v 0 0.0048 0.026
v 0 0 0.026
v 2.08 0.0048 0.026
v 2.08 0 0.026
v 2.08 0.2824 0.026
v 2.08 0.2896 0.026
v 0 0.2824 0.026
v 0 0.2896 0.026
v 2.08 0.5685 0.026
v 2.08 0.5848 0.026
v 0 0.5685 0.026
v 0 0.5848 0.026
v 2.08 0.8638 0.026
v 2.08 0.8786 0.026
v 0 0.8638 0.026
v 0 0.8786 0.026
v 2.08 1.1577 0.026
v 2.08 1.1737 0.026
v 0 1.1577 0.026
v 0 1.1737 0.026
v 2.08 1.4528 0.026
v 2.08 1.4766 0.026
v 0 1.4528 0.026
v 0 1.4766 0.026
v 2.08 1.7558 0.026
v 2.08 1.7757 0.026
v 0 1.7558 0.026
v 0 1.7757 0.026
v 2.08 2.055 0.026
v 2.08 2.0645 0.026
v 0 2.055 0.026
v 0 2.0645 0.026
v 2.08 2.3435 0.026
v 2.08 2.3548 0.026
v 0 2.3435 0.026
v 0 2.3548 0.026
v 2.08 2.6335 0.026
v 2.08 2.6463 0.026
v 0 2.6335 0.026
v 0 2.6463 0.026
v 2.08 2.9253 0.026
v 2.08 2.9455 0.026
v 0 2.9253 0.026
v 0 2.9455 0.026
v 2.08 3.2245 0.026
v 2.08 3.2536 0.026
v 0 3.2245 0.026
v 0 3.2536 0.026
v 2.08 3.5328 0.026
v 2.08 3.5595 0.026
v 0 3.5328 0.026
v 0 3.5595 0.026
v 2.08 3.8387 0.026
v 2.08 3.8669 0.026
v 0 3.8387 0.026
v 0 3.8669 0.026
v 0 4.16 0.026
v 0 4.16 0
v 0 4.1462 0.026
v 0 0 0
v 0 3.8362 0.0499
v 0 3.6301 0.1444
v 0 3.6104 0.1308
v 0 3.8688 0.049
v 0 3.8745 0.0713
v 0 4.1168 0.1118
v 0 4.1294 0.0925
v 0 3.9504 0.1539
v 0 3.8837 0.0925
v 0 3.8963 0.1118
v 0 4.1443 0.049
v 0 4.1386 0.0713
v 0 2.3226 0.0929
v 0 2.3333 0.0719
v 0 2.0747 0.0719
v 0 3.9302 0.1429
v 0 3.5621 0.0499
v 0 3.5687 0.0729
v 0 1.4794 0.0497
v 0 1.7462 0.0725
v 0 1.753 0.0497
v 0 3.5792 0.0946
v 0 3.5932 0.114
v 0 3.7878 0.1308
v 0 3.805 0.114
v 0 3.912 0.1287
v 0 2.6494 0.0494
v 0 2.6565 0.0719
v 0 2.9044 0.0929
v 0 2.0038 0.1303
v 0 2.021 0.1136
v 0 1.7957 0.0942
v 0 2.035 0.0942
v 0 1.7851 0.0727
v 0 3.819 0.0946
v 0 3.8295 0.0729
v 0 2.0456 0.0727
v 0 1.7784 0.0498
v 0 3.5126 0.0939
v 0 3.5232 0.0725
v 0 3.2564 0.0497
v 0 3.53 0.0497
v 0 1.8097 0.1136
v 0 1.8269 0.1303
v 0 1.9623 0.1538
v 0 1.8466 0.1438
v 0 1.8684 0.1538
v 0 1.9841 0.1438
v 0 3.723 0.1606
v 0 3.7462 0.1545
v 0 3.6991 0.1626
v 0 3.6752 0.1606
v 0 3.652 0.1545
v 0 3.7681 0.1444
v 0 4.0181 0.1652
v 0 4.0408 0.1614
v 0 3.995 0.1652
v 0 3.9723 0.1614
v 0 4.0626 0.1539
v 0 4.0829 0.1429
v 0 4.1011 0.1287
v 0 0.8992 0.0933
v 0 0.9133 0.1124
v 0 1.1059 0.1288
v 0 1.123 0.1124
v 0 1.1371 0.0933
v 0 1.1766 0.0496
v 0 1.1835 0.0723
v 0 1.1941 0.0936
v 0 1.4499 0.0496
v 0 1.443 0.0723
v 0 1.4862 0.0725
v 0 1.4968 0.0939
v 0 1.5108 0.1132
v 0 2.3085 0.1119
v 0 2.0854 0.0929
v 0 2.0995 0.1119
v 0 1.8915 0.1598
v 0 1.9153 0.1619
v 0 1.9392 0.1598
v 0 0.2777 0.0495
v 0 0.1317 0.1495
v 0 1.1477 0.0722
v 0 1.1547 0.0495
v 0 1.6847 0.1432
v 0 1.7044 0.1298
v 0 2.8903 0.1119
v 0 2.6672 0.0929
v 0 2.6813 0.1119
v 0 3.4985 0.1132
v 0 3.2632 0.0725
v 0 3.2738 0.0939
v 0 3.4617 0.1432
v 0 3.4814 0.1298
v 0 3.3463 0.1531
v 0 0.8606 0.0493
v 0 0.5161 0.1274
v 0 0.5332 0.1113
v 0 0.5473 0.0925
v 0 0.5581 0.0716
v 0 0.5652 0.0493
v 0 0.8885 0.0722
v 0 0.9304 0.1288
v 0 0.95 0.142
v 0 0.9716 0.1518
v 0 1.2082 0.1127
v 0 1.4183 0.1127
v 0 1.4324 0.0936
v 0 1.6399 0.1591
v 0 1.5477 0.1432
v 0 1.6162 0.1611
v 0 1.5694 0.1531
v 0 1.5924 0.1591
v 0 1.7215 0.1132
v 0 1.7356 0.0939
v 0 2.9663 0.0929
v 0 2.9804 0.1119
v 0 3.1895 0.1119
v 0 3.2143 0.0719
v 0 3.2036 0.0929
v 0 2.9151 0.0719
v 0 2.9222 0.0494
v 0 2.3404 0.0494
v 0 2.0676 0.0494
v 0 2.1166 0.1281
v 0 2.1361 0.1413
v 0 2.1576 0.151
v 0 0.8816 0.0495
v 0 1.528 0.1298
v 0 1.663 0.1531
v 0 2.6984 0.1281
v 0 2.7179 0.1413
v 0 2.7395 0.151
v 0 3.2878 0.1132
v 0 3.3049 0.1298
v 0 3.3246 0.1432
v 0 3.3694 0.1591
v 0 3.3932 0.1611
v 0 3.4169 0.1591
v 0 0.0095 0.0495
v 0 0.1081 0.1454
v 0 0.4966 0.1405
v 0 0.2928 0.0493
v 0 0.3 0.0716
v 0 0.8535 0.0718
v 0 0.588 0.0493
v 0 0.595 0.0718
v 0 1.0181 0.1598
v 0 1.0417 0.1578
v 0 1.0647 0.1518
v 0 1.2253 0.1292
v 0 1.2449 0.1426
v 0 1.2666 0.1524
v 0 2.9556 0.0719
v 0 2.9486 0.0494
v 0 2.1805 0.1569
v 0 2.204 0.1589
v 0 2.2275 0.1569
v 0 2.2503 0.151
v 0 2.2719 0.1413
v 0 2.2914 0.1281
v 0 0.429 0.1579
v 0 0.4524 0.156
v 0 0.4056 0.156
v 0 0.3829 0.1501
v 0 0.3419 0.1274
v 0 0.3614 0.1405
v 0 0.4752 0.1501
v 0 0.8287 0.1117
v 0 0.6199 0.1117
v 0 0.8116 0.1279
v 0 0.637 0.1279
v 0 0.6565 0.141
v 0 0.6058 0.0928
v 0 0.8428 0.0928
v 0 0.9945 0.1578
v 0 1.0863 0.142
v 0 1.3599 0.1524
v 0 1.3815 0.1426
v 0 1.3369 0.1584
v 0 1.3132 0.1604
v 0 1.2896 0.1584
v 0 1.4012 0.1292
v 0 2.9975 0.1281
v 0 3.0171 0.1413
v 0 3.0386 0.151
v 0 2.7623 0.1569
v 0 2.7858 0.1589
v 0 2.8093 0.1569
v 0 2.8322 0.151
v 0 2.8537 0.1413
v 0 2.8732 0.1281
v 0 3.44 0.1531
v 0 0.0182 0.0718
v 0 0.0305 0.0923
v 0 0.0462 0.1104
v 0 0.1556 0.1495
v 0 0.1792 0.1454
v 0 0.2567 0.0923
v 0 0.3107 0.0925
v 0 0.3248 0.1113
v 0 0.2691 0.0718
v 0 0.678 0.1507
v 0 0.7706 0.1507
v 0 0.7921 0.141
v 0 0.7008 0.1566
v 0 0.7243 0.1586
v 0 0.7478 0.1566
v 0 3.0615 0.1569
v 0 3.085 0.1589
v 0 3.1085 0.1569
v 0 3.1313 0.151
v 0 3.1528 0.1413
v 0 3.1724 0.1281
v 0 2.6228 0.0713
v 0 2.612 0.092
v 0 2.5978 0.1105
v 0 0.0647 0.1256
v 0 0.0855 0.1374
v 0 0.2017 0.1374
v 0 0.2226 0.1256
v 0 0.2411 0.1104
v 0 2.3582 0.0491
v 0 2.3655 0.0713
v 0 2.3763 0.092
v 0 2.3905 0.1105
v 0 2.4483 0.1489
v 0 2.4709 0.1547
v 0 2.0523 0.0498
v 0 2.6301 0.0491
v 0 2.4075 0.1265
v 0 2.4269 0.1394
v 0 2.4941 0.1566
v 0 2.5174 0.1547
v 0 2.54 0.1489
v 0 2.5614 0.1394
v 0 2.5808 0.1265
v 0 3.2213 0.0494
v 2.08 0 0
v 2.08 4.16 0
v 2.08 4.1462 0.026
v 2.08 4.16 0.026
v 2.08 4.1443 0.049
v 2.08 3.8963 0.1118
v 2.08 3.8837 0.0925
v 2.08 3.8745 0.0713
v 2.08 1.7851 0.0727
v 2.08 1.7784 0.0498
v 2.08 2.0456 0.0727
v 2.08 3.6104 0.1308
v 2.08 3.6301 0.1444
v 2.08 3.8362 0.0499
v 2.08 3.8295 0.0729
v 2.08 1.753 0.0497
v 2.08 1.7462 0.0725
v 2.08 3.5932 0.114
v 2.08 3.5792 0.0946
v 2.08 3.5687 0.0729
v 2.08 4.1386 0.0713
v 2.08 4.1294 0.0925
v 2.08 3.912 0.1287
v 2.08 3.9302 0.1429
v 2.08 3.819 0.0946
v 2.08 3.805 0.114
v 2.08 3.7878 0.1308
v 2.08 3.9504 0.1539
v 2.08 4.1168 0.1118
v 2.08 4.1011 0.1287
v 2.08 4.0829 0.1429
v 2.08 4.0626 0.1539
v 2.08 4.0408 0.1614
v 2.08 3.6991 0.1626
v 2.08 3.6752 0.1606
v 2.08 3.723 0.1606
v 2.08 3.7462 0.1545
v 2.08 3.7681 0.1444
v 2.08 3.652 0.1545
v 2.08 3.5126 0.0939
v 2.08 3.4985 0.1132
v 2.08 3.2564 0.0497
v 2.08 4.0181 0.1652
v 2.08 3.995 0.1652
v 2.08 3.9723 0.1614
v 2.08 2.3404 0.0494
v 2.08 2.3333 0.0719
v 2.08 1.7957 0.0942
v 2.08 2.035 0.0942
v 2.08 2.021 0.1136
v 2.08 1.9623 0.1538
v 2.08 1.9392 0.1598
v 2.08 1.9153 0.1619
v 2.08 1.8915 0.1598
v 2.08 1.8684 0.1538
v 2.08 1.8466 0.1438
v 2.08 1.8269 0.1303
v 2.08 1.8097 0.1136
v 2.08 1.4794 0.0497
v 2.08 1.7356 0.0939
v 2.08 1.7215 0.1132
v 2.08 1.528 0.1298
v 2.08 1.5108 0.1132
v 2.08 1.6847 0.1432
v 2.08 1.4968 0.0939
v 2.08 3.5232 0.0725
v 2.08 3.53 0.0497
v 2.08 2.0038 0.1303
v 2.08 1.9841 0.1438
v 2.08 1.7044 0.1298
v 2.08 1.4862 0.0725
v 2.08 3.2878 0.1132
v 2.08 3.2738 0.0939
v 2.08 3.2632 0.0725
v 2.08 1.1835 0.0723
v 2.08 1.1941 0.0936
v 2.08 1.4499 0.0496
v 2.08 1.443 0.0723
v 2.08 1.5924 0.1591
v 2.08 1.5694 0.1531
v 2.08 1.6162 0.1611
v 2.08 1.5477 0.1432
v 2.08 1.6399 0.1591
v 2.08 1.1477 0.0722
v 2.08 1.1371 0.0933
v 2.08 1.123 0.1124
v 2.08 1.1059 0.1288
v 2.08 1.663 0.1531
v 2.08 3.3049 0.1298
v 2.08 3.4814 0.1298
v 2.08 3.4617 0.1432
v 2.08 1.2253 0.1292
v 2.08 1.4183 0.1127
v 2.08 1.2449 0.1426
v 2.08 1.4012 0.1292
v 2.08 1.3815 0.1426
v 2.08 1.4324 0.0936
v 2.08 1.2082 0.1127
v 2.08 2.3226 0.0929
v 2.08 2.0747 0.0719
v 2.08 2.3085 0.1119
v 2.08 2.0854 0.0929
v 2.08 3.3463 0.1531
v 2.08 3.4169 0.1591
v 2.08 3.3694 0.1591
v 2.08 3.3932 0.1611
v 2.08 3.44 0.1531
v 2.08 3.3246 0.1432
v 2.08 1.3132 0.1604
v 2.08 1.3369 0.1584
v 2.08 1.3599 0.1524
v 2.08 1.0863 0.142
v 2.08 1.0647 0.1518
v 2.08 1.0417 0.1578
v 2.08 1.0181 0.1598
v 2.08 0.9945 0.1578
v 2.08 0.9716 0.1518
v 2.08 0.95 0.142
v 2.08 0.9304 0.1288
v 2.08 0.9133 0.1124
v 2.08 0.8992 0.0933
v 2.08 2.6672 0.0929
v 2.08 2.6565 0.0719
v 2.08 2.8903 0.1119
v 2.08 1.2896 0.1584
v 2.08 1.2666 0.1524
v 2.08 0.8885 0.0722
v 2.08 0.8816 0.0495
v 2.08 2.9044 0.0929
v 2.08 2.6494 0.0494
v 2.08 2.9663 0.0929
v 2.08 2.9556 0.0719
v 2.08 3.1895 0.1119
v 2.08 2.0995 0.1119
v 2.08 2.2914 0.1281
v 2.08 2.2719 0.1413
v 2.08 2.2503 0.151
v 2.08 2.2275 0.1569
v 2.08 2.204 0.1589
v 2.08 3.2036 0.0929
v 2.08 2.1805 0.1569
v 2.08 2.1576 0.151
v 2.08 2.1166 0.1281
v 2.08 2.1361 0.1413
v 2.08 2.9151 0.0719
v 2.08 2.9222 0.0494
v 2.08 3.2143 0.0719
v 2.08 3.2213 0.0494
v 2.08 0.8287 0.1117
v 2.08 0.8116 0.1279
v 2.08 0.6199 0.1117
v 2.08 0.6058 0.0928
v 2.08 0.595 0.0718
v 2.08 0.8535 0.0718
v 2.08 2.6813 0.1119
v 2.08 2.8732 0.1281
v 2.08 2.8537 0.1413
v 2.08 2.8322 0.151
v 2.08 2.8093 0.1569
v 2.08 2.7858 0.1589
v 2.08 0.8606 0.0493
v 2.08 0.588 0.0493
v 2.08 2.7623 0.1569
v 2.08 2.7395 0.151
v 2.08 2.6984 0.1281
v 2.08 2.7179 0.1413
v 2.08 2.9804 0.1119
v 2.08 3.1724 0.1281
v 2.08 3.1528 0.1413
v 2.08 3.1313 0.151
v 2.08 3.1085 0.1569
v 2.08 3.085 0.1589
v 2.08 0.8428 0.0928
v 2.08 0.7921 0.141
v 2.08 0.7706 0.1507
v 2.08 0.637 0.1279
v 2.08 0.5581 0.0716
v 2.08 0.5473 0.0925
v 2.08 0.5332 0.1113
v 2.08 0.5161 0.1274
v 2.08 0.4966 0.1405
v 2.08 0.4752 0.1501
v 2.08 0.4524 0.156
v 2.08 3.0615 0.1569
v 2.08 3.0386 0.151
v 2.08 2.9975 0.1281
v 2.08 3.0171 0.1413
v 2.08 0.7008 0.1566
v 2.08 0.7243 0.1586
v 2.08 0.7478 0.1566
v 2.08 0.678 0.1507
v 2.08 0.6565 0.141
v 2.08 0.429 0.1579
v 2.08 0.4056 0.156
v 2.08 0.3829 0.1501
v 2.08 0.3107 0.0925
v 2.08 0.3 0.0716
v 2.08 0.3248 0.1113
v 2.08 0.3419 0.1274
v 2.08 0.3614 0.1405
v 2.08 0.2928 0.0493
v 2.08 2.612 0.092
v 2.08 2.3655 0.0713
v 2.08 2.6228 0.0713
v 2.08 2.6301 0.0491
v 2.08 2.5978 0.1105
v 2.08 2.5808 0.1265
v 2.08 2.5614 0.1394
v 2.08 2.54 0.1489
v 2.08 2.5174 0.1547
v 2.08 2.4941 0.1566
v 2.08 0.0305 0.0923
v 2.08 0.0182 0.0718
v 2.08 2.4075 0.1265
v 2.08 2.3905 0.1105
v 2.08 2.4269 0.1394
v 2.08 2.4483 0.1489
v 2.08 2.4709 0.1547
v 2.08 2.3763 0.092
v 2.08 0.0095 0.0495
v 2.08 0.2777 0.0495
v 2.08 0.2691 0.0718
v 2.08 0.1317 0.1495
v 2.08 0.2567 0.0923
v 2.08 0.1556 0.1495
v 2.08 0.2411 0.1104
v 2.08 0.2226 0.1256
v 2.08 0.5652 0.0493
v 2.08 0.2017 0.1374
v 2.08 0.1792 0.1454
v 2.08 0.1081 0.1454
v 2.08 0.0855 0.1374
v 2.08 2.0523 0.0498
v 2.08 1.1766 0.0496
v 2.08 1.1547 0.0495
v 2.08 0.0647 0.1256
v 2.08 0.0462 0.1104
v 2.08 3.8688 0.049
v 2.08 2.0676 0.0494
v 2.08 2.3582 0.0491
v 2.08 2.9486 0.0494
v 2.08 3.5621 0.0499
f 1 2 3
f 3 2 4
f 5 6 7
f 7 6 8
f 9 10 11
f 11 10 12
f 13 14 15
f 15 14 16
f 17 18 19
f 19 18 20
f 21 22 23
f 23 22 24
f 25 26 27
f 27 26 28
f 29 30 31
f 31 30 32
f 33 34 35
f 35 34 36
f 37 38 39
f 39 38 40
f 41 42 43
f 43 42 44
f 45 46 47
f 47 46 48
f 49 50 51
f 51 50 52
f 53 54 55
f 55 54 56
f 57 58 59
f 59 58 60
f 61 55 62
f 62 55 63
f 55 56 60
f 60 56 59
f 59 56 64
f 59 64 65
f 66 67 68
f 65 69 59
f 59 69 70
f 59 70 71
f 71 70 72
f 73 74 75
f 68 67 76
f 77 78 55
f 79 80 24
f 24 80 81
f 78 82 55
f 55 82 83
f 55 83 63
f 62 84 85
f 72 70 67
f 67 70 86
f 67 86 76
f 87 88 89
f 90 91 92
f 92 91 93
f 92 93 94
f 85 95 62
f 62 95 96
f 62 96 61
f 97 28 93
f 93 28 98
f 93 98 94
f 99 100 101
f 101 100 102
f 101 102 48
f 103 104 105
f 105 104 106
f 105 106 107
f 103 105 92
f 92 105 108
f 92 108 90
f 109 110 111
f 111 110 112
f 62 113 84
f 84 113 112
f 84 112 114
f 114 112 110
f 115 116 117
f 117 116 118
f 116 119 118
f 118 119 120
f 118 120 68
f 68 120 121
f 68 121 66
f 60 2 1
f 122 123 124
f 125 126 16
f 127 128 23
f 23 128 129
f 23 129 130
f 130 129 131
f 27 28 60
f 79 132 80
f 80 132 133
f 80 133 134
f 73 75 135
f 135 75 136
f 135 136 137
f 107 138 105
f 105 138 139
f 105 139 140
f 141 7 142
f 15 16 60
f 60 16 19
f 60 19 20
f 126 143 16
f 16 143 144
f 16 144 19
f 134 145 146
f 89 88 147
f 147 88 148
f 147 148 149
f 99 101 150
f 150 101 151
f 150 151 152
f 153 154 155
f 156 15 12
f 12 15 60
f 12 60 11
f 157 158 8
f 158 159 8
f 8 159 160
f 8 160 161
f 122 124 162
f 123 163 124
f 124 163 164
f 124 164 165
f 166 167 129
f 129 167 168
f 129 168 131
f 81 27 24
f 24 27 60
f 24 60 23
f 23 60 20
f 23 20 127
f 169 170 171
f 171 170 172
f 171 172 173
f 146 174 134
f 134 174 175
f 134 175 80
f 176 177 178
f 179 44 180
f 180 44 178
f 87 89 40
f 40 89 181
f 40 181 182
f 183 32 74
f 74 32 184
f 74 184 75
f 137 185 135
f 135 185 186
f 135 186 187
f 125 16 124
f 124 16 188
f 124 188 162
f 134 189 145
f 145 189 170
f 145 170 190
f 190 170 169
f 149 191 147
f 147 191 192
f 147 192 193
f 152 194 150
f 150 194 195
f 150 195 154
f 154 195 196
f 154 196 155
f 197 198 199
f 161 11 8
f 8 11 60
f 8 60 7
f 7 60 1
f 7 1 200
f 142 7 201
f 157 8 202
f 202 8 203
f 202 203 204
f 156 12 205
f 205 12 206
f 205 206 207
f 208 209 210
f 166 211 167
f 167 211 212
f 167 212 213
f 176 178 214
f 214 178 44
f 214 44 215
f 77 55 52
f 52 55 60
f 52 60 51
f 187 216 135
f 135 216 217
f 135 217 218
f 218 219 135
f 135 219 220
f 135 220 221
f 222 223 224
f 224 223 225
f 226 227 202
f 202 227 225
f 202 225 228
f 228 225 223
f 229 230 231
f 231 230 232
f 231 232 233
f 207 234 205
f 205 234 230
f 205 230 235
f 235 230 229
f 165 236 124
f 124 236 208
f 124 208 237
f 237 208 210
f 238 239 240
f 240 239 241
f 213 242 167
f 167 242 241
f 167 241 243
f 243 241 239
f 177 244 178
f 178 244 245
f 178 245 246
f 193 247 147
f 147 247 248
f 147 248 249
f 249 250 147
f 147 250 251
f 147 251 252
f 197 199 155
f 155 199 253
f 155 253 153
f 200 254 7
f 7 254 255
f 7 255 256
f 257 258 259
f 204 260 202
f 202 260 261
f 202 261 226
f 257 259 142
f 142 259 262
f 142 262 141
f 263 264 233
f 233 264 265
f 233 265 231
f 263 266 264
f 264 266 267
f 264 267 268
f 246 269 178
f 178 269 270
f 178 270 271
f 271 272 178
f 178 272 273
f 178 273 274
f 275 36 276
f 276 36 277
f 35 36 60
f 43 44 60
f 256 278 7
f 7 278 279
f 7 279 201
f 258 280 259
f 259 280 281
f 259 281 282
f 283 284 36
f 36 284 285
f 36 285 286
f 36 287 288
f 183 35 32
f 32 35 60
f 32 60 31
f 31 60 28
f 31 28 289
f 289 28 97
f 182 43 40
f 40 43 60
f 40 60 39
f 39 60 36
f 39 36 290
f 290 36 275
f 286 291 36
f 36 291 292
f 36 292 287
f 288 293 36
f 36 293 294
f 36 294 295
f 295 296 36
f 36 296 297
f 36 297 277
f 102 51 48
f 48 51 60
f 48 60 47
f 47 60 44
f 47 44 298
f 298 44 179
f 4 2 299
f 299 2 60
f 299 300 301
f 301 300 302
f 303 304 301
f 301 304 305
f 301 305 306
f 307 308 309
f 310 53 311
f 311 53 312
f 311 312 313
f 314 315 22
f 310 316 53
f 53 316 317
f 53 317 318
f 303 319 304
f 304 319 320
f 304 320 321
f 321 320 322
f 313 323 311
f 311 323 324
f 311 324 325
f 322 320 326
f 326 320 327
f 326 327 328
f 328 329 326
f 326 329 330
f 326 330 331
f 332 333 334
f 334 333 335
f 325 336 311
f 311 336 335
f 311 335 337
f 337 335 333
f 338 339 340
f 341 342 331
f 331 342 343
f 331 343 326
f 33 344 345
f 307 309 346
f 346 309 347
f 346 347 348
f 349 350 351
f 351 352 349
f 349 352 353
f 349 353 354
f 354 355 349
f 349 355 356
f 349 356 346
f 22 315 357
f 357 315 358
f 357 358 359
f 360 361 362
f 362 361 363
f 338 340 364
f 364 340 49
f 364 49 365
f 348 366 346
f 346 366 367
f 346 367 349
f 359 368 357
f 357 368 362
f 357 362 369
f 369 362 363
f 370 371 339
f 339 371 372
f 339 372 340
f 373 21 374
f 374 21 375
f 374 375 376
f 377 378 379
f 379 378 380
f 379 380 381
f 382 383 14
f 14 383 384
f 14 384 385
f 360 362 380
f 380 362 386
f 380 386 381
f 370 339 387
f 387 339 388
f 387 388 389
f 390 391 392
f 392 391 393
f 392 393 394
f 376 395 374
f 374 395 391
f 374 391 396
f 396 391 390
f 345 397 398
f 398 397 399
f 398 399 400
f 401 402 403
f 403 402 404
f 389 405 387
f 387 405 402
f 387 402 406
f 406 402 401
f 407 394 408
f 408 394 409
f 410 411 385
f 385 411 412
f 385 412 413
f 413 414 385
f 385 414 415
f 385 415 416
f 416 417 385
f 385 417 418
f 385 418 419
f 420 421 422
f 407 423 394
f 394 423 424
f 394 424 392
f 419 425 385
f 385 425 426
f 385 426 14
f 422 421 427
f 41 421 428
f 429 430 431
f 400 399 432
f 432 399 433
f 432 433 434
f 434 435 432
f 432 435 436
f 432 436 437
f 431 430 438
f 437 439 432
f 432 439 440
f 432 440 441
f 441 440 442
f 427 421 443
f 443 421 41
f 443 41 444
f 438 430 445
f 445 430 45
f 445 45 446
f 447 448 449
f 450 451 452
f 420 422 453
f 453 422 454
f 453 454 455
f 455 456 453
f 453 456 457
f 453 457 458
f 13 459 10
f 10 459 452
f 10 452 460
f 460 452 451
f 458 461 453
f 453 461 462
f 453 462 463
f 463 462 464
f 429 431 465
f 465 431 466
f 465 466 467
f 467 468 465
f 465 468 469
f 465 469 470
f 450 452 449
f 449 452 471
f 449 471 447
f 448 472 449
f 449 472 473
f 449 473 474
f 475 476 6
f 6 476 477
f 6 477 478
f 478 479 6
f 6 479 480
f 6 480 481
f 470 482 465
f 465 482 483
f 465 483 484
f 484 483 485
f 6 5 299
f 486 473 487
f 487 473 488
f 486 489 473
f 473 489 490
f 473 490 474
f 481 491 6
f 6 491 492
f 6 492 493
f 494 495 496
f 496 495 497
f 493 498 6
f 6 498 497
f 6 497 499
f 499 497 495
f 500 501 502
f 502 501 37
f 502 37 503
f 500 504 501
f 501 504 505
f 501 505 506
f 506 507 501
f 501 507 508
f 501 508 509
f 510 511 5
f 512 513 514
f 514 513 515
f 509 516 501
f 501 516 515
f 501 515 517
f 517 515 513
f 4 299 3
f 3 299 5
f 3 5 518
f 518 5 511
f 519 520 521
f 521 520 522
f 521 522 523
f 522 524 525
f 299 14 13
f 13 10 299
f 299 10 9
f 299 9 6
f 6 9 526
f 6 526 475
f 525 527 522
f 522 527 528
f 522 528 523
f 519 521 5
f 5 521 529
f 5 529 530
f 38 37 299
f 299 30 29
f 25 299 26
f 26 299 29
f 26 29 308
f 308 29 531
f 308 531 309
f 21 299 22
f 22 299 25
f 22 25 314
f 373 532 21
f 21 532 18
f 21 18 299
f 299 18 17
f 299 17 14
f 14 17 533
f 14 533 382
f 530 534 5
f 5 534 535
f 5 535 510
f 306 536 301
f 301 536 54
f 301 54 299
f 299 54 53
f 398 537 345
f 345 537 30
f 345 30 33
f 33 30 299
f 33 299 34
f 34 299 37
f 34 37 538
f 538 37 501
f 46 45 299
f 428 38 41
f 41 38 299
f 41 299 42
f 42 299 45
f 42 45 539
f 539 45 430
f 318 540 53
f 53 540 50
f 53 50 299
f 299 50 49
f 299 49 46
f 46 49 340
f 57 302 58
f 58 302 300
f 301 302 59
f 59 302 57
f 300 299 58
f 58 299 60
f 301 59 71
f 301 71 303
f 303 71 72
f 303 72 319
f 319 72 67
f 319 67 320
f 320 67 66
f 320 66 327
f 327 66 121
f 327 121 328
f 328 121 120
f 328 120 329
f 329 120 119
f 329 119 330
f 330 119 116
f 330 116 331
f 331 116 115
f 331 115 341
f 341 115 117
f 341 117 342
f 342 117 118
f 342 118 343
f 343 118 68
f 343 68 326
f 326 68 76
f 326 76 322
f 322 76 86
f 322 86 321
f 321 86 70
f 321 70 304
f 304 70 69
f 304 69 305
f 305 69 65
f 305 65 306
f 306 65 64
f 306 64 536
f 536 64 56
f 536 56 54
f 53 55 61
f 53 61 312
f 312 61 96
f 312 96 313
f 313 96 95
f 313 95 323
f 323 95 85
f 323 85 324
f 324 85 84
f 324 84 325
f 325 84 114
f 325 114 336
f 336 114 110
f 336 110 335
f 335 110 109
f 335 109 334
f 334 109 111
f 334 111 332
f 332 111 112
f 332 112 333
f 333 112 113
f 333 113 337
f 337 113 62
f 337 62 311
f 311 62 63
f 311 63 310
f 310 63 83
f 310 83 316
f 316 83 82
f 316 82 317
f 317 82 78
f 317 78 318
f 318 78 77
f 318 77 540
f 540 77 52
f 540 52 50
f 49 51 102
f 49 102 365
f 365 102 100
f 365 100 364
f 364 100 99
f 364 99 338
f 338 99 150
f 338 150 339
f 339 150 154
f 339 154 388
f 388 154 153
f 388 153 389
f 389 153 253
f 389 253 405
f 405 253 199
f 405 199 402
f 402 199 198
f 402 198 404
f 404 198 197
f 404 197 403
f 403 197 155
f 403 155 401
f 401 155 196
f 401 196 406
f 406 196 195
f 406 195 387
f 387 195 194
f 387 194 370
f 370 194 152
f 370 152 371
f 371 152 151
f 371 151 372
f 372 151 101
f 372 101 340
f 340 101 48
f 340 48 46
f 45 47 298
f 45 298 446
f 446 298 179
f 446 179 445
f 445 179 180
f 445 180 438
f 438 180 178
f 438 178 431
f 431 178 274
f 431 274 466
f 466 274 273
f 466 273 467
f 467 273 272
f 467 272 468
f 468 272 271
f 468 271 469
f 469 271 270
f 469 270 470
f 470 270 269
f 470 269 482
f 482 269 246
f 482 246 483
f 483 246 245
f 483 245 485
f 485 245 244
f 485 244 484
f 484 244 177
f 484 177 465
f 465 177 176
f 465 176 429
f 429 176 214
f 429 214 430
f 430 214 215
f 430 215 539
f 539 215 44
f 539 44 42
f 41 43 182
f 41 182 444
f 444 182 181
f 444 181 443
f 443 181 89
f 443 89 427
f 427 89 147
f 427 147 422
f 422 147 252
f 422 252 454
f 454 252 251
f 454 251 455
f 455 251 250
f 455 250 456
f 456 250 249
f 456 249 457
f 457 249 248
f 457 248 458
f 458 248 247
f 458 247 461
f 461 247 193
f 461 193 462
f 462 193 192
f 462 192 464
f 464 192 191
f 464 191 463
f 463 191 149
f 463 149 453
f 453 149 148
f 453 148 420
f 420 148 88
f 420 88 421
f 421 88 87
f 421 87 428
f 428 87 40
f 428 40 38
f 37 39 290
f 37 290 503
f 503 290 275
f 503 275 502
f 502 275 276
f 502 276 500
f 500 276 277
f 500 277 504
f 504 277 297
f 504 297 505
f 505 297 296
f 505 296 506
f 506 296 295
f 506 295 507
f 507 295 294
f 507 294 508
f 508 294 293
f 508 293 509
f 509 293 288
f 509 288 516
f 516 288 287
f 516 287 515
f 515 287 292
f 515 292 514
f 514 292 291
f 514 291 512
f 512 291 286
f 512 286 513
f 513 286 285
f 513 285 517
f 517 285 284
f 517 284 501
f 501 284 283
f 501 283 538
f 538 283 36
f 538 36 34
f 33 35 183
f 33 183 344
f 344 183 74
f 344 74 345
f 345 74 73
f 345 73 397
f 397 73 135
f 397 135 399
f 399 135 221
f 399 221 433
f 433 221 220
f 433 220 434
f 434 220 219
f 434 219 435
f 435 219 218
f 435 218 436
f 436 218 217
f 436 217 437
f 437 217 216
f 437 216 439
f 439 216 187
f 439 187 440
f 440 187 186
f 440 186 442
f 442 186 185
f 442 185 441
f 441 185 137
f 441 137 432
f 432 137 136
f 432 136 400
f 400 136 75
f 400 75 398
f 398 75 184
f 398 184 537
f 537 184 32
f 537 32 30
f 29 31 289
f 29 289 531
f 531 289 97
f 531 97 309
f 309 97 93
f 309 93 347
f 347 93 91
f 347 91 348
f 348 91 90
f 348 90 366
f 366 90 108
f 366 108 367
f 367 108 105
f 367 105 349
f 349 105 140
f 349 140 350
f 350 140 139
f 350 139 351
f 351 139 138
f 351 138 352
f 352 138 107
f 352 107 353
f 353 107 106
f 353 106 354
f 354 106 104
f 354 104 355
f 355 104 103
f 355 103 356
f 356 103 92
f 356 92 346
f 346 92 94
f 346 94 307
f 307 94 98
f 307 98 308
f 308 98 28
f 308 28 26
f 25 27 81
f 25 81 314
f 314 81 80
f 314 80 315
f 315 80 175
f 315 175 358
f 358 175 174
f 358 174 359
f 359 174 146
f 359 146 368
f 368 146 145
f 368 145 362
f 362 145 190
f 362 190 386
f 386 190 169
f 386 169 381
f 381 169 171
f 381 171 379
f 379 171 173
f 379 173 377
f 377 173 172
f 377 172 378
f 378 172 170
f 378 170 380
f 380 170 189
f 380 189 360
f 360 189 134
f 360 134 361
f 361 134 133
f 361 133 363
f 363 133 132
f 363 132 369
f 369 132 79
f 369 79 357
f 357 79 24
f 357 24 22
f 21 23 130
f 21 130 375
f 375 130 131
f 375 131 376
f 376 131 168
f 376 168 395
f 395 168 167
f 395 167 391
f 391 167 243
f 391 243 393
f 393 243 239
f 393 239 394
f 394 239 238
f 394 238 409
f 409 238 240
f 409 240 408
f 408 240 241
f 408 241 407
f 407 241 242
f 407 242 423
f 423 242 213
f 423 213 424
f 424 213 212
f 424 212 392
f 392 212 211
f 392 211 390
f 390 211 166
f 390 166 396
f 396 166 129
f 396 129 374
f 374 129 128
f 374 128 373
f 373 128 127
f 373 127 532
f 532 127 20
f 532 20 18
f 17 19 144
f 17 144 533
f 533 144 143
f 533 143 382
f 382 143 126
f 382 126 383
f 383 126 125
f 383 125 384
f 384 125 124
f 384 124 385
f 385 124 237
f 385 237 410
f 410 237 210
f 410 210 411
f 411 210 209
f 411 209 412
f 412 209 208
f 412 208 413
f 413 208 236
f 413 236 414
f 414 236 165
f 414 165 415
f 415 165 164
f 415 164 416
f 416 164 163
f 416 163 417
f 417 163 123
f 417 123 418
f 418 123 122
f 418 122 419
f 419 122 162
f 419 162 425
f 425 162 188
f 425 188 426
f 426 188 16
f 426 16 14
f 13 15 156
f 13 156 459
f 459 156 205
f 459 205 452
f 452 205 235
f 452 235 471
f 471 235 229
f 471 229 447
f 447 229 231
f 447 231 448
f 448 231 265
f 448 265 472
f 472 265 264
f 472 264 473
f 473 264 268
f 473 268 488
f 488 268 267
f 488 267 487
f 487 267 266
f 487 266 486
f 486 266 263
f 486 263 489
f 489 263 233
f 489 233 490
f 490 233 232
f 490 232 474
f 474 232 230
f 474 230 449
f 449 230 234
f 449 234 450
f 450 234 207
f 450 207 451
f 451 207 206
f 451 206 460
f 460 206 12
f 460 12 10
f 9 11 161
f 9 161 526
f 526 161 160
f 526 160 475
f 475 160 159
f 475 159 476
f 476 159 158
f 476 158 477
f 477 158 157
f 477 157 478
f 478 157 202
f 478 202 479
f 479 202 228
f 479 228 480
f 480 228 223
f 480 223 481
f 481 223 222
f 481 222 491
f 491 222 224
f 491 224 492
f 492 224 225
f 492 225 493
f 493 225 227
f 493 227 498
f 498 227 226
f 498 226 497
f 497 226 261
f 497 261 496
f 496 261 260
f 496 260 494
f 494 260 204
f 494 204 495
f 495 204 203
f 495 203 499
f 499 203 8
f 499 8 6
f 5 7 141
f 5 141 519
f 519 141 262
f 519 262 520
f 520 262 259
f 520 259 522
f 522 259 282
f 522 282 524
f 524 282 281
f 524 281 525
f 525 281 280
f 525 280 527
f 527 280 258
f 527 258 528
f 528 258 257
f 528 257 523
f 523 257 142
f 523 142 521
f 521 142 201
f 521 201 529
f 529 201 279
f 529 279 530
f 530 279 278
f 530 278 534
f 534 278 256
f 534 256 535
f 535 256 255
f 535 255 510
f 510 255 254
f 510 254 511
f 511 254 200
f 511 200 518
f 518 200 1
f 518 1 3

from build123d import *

# Parameters (mm, degrees)
SKETCH_1_W      = 2.08
SKETCH_1_H      = 4.16
EXTRUDE_1_DEPTH = 0.026
EXTRUDE_2_DEPTH = 2.08


with BuildPart() as part:
    # 草图1 → 凸台-拉伸1 (new body)
    with BuildSketch(Plane.XY):
        with Locations((1.04, 2.08)):
            Rectangle(SKETCH_1_W, SKETCH_1_H)
    extrude(amount=EXTRUDE_1_DEPTH)

    # 草图2 → 凸台-拉伸2 (add)
    with BuildSketch(Plane.ZY):
        with BuildLine():
            Line((0.026, 4.146203623), (0.026, 3.866891673))
            ThreePointArc((0.026, 3.866891673), (0.165655975, 4.006547648), (0.026, 4.146203623))
        make_face()
        with BuildLine():
            Line((0.022993244, 3.838762788), (0.022993244, 3.559450839))
            ThreePointArc((0.022993244, 3.559450839), (0.162649218, 3.699106813), (0.022993244, 3.838762788))
        make_face()
        with BuildLine():
            Line((0.021489866, 3.532825332), (0.021489866, 3.253513382))
            ThreePointArc((0.021489866, 3.253513382), (0.16114584, 3.393169357), (0.021489866, 3.532825332))
        make_face()
        with BuildLine():
            Line((0.019234798, 3.224632808), (0.019234798, 2.945320858))
            ThreePointArc((0.019234798, 2.945320858), (0.158890773, 3.084976833), (0.019234798, 3.224632808))
        make_face()
        with BuildLine():
            Line((0.019234798, 2.925460553), (0.019234798, 2.646148603))
            ThreePointArc((0.019234798, 2.646148603), (0.158890773, 2.785804578), (0.019234798, 2.925460553))
        make_face()
        with BuildLine():
            Line((0.016979731, 2.633805189), (0.016979731, 2.354493239))
            ThreePointArc((0.016979731, 2.354493239), (0.156635706, 2.494149214), (0.016979731, 2.633805189))
        make_face()
        with BuildLine():
            Line((0.019234798, 2.343653203), (0.019234798, 2.064341253))
            ThreePointArc((0.019234798, 2.064341253), (0.158890773, 2.203997228), (0.019234798, 2.343653203))
        make_face()
        with BuildLine():
            Line((0.022241555, 2.055004595), (0.022241555, 1.775692646))
            ThreePointArc((0.022241555, 1.775692646), (0.161897529, 1.915348621), (0.022241555, 2.055004595))
        make_face()
        with BuildLine():
            Line((0.021489866, 1.755832341), (0.021489866, 1.476520391))
            ThreePointArc((0.021489866, 1.476520391), (0.16114584, 1.616176366), (0.021489866, 1.755832341))
        make_face()
        with BuildLine():
            Line((0.020738176, 1.45290164), (0.020738176, 1.173589691))
            ThreePointArc((0.020738176, 1.173589691), (0.160394151, 1.313245665), (0.020738176, 1.45290164))
        make_face()
        with BuildLine():
            Line((0.020114274, 1.157796023), (0.020114274, 0.878484074))
            ThreePointArc((0.020114274, 0.878484074), (0.159770249, 1.018140049), (0.020114274, 1.157796023))
        make_face()
        with BuildLine():
            Line((0.018905087, 0.863937722), (0.018905087, 0.584625772))
            ThreePointArc((0.018905087, 0.584625772), (0.158561062, 0.724281747), (0.018905087, 0.863937722))
        make_face()
        with BuildLine():
            Line((0.018290589, 0.568669036), (0.018290589, 0.289357086))
            ThreePointArc((0.018290589, 0.289357086), (0.157946563, 0.429013061), (0.018290589, 0.568669036))
        make_face()
        with BuildLine():
            Line((0.010391034, 0.283278205), (0.010391034, 0.003966255))
            ThreePointArc((0.010391034, 0.003966255), (0.150047009, 0.14362223), (0.010391034, 0.283278205))
        make_face()
    extrude(amount=-EXTRUDE_2_DEPTH)


solid = part.part
